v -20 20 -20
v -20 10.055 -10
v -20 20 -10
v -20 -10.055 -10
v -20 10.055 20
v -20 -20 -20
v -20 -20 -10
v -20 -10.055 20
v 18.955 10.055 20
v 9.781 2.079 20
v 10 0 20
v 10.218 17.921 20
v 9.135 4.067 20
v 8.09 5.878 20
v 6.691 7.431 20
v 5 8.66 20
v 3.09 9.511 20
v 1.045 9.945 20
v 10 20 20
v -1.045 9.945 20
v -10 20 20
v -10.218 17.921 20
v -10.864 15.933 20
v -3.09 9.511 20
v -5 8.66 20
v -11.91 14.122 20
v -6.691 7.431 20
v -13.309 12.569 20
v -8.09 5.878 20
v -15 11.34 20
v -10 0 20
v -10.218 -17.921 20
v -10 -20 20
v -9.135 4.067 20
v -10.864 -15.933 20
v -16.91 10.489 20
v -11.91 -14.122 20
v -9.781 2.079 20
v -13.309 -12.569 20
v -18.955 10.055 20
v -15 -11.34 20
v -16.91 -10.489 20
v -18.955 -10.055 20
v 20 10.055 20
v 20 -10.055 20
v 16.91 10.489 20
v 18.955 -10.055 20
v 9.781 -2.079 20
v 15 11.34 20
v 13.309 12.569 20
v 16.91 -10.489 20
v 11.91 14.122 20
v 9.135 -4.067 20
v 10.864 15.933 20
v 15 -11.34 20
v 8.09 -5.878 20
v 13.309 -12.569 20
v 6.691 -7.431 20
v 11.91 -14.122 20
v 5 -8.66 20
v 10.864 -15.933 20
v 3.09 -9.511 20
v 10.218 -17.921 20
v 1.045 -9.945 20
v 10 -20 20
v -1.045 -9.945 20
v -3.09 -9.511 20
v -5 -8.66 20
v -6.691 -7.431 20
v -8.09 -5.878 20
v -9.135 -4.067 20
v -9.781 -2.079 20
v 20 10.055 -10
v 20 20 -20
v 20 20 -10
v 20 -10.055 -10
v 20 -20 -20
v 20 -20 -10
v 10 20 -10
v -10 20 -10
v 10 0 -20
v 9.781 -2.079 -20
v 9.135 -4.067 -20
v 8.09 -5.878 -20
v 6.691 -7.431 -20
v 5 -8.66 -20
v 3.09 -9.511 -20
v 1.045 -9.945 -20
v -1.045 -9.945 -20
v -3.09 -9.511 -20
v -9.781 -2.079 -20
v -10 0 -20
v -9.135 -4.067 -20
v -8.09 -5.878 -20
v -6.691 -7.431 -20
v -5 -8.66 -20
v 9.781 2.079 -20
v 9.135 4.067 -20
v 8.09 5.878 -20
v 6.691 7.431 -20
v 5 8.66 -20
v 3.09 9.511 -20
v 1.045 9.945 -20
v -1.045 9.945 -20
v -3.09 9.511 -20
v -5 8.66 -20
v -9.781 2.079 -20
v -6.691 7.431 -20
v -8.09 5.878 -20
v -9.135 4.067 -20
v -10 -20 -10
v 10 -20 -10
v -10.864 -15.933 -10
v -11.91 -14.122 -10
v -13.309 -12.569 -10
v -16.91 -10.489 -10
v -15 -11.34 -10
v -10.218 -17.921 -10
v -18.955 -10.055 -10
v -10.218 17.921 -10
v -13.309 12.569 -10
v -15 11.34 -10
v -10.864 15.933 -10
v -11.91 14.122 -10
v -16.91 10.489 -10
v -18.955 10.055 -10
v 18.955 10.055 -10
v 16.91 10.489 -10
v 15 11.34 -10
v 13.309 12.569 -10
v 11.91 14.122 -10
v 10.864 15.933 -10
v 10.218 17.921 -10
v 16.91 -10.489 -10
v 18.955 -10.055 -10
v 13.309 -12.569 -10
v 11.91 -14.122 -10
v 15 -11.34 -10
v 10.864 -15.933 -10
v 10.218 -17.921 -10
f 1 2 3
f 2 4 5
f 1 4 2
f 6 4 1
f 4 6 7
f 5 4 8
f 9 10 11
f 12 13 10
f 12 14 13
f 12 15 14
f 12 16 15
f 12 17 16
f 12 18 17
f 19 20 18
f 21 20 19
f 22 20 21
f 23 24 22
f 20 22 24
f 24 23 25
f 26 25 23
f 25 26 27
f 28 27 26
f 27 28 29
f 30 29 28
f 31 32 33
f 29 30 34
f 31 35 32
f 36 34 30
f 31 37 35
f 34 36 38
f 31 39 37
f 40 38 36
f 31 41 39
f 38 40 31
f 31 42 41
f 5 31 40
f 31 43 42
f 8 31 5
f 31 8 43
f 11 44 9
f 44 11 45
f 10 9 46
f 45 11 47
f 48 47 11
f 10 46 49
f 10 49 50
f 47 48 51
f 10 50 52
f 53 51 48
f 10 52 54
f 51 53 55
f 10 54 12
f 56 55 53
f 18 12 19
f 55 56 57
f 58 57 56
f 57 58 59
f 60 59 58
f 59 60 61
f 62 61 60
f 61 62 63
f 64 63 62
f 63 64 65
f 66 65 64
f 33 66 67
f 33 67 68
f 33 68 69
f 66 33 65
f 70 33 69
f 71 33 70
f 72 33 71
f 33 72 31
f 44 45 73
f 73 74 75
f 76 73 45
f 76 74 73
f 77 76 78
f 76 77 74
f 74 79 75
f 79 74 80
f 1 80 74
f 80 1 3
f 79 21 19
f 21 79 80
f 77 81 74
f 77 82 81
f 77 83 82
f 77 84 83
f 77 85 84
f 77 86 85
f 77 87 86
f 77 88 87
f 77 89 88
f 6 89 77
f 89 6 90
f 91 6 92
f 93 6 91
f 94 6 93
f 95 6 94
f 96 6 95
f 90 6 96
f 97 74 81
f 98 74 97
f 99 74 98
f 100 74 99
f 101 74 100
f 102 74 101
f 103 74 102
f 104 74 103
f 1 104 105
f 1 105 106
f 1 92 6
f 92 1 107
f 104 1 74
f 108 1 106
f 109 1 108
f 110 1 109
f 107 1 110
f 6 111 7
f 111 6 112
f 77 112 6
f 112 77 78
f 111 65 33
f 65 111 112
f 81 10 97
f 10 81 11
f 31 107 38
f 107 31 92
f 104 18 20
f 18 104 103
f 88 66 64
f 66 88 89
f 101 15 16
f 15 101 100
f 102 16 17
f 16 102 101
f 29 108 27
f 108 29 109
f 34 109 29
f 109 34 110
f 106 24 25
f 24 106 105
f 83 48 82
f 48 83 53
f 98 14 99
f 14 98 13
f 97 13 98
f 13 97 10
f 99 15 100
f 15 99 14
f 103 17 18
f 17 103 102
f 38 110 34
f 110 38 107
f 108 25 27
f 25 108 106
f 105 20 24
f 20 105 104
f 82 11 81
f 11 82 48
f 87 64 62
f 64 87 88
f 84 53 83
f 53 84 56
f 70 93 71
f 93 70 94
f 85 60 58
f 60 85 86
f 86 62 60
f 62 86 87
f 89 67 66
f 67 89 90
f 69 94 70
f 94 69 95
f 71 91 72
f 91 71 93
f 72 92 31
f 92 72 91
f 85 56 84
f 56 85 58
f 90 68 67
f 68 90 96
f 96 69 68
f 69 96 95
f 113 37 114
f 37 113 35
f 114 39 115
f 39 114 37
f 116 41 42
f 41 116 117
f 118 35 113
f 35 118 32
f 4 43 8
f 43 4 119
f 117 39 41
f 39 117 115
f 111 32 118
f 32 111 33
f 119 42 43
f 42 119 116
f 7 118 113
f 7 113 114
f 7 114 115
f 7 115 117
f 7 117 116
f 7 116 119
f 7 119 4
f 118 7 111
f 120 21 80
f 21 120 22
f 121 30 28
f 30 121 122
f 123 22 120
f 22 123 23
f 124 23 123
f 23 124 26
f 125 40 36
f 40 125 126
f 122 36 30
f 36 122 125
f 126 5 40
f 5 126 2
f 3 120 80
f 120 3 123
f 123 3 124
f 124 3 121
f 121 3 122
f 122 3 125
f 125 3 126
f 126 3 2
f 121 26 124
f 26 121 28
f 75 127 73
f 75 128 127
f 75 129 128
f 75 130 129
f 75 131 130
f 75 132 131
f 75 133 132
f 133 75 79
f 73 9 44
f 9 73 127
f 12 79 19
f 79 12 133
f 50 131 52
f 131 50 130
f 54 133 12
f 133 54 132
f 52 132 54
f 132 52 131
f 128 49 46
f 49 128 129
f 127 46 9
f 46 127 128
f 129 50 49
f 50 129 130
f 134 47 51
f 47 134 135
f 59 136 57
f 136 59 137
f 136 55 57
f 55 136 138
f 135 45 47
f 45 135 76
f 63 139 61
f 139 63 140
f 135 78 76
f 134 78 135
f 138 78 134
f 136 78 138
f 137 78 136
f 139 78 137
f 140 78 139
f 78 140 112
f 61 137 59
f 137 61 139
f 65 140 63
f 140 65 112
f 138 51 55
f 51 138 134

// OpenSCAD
difference() {
  cube([40, 40, 40], center=true);

  cylinder(r1=10, r2=10, h=90, center=true);
  translate([-20, -20, 10]){
    cylinder(r1=10, r2=10, h=40, center=true);
  }
  translate([-20, 20, 10]){
    cylinder(r1=10, r2=10, h=40, center=true);
  }
  translate([20, 20, 10]){
    cylinder(r1=10, r2=10, h=40, center=true);
  }
  translate([20, -20, 10]){
    cylinder(r1=10, r2=10, h=40, center=true);
  }
}
